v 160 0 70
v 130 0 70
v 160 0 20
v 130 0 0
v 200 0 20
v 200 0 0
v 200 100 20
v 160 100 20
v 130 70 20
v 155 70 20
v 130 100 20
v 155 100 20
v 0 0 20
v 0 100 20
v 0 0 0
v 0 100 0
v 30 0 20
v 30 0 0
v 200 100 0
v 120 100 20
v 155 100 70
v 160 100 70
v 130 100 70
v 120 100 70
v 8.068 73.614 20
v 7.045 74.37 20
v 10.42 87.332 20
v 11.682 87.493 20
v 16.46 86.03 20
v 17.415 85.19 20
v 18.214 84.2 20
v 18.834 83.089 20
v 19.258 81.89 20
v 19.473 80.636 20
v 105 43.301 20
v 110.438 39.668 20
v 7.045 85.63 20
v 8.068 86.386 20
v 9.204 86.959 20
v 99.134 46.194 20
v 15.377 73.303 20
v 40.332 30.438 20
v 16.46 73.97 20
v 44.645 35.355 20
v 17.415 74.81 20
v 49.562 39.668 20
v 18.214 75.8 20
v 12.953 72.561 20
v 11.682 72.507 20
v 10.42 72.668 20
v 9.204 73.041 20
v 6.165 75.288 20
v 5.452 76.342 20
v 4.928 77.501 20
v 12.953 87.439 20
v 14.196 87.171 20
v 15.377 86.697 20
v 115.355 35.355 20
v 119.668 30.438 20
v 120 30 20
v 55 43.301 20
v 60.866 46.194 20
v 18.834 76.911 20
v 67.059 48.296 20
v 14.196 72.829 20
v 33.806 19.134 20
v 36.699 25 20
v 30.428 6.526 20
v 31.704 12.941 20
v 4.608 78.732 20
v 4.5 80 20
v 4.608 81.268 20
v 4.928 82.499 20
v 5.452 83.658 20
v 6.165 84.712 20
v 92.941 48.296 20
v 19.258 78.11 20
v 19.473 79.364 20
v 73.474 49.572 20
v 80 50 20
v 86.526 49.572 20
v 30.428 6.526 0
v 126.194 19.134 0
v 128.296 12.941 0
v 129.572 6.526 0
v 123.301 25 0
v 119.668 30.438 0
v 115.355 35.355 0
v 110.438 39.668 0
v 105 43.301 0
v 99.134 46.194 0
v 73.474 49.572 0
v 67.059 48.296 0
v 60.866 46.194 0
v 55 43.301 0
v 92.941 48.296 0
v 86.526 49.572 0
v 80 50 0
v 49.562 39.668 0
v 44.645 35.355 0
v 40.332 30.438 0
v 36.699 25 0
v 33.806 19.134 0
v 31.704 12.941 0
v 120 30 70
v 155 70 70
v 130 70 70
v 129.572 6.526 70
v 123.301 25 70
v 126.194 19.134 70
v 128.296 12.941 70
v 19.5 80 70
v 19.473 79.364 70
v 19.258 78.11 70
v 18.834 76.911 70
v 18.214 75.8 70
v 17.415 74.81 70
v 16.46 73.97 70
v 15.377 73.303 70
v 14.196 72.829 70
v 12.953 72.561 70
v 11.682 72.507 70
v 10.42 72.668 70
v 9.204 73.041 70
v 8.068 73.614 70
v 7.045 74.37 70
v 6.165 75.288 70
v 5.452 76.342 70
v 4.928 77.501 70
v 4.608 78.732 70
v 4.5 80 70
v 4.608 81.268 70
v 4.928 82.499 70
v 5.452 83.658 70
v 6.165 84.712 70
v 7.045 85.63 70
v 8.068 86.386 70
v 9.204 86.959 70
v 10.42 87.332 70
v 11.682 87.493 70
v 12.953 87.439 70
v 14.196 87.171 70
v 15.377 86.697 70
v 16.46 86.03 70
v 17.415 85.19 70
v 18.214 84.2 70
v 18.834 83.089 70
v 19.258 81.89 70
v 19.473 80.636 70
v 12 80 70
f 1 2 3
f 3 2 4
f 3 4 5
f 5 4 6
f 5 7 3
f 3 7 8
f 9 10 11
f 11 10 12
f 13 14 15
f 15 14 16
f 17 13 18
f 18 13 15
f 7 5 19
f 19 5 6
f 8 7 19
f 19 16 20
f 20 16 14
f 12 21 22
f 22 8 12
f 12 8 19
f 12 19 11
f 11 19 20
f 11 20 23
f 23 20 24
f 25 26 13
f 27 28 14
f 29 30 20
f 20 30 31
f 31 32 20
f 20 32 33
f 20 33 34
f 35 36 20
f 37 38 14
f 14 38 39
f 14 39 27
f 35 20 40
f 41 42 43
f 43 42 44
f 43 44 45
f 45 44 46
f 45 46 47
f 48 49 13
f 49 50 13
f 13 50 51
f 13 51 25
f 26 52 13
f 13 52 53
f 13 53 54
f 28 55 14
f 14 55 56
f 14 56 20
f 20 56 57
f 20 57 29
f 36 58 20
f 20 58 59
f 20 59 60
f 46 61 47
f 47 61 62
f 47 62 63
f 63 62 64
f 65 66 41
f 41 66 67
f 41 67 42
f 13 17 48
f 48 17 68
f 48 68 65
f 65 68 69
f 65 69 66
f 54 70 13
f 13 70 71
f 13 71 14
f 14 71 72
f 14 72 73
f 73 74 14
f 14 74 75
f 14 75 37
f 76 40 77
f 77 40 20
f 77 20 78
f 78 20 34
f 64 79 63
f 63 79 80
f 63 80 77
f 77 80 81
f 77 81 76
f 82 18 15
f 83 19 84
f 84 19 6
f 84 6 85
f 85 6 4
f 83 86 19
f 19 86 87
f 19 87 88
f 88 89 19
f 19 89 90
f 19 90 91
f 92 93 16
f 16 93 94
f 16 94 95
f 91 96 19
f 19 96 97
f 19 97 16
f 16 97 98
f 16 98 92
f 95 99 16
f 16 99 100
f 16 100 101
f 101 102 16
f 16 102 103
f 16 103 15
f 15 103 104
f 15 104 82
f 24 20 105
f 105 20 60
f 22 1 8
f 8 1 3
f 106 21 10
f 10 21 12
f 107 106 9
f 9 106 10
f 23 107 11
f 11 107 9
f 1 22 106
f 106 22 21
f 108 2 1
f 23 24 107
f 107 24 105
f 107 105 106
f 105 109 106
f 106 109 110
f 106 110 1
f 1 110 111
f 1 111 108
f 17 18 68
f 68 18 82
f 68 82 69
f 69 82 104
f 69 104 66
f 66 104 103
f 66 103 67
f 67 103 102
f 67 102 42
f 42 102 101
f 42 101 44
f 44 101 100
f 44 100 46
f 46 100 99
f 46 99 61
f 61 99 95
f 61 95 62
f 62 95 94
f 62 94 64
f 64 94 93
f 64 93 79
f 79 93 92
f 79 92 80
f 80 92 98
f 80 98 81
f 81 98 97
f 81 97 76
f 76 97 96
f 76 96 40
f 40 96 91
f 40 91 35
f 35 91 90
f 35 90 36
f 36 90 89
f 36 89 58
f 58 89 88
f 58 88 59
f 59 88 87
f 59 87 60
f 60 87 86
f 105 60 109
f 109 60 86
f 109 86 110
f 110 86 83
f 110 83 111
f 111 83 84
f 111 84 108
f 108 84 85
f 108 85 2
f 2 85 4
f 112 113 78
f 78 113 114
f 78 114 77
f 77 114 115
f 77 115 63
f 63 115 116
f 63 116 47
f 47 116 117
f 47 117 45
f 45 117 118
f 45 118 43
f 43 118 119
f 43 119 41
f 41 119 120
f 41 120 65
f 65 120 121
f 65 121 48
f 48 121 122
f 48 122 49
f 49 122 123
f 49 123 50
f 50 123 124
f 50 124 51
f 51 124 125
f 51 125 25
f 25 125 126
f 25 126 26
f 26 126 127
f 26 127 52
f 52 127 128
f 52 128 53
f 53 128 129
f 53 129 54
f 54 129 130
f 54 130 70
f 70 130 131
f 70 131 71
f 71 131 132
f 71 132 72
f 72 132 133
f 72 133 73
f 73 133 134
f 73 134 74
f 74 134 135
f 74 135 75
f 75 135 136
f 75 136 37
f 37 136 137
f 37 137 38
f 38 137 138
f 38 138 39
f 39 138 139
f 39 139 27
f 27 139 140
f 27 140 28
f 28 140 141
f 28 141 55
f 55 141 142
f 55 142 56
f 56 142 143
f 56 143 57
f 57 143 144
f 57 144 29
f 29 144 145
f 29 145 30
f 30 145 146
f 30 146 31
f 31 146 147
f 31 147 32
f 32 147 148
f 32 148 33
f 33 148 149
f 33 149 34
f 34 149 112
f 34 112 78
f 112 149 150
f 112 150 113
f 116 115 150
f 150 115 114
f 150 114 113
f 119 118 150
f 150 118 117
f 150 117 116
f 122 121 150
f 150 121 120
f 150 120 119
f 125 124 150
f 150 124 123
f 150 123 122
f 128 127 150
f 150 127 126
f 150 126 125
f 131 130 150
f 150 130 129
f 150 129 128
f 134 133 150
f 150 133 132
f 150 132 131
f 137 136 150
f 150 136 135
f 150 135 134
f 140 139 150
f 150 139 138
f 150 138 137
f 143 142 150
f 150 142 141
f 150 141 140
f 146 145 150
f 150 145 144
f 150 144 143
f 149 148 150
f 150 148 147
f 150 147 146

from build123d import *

# Parameters (mm, degrees)
SKICA1_W                 = 200
SKICA1_H                 = 100
P_IDAT_VYSUNUT_M1_DEPTH  = 20
P_IDAT_VYSUNUT_M2_DEPTH  = 50
ODEBRAT_VYSUNUT_M1_REACH = 236.307
SKICA4_R                 = 50
SKICA7_R                 = 7.5
P_IDAT_VYSUNUT_M3_DEPTH  = 50


with BuildPart() as part:
    # Skica1 → Přidat vysunutím1 (new body)
    with BuildSketch(Plane.XY):
        with Locations((100, 50)):
            Rectangle(SKICA1_W, SKICA1_H)
    extrude(amount=P_IDAT_VYSUNUT_M1_DEPTH)

    # Skica2 → Přidat vysunutím2 (add)
    with BuildSketch(Plane.XY.offset(20)):
        Polygon((120, 0), (160, 0), (160, 100), (155, 100), (155, 70), (130, 70), (130, 100), (120, 100), align=None)
    extrude(amount=P_IDAT_VYSUNUT_M2_DEPTH)

    # Odebrat vysunutím1: up to this face of the body (flat: up to its plane)
    odebrat_vysunut_m1_end = Plane(part.part.faces().sort_by_distance((139.423076923, 41.923076923, 70))[0])
    # Skica4 → Odebrat vysunutím1 (cut, up to the picked face)
    with BuildSketch(Plane(origin=(0, 0, 0), x_dir=(-1, 0, 0), z_dir=(0, 0, -1)), mode=Mode.PRIVATE) as odebrat_vysunut_m1_sk1:
        with Locations((-80, 0)):
            Circle(SKICA4_R)
    odebrat_vysunut_m1_tool1 = split(extrude(odebrat_vysunut_m1_sk1.sketch, amount=-ODEBRAT_VYSUNUT_M1_REACH, mode=Mode.PRIVATE), bisect_by=odebrat_vysunut_m1_end, keep=Keep.BOTH, mode=Mode.PRIVATE)
    add(odebrat_vysunut_m1_tool1.solids().sort_by(Axis((80, 0, 0), (0, 0, 1)))[0], mode=Mode.SUBTRACT)

    # Skica7 → Přidat vysunutím3 (add)
    with BuildSketch(Plane.XY.offset(20)):
        with Locations(Location((12, 80, 0), (0, 0, 180))):
            Circle(SKICA7_R)
    extrude(amount=P_IDAT_VYSUNUT_M3_DEPTH)


solid = part.part
